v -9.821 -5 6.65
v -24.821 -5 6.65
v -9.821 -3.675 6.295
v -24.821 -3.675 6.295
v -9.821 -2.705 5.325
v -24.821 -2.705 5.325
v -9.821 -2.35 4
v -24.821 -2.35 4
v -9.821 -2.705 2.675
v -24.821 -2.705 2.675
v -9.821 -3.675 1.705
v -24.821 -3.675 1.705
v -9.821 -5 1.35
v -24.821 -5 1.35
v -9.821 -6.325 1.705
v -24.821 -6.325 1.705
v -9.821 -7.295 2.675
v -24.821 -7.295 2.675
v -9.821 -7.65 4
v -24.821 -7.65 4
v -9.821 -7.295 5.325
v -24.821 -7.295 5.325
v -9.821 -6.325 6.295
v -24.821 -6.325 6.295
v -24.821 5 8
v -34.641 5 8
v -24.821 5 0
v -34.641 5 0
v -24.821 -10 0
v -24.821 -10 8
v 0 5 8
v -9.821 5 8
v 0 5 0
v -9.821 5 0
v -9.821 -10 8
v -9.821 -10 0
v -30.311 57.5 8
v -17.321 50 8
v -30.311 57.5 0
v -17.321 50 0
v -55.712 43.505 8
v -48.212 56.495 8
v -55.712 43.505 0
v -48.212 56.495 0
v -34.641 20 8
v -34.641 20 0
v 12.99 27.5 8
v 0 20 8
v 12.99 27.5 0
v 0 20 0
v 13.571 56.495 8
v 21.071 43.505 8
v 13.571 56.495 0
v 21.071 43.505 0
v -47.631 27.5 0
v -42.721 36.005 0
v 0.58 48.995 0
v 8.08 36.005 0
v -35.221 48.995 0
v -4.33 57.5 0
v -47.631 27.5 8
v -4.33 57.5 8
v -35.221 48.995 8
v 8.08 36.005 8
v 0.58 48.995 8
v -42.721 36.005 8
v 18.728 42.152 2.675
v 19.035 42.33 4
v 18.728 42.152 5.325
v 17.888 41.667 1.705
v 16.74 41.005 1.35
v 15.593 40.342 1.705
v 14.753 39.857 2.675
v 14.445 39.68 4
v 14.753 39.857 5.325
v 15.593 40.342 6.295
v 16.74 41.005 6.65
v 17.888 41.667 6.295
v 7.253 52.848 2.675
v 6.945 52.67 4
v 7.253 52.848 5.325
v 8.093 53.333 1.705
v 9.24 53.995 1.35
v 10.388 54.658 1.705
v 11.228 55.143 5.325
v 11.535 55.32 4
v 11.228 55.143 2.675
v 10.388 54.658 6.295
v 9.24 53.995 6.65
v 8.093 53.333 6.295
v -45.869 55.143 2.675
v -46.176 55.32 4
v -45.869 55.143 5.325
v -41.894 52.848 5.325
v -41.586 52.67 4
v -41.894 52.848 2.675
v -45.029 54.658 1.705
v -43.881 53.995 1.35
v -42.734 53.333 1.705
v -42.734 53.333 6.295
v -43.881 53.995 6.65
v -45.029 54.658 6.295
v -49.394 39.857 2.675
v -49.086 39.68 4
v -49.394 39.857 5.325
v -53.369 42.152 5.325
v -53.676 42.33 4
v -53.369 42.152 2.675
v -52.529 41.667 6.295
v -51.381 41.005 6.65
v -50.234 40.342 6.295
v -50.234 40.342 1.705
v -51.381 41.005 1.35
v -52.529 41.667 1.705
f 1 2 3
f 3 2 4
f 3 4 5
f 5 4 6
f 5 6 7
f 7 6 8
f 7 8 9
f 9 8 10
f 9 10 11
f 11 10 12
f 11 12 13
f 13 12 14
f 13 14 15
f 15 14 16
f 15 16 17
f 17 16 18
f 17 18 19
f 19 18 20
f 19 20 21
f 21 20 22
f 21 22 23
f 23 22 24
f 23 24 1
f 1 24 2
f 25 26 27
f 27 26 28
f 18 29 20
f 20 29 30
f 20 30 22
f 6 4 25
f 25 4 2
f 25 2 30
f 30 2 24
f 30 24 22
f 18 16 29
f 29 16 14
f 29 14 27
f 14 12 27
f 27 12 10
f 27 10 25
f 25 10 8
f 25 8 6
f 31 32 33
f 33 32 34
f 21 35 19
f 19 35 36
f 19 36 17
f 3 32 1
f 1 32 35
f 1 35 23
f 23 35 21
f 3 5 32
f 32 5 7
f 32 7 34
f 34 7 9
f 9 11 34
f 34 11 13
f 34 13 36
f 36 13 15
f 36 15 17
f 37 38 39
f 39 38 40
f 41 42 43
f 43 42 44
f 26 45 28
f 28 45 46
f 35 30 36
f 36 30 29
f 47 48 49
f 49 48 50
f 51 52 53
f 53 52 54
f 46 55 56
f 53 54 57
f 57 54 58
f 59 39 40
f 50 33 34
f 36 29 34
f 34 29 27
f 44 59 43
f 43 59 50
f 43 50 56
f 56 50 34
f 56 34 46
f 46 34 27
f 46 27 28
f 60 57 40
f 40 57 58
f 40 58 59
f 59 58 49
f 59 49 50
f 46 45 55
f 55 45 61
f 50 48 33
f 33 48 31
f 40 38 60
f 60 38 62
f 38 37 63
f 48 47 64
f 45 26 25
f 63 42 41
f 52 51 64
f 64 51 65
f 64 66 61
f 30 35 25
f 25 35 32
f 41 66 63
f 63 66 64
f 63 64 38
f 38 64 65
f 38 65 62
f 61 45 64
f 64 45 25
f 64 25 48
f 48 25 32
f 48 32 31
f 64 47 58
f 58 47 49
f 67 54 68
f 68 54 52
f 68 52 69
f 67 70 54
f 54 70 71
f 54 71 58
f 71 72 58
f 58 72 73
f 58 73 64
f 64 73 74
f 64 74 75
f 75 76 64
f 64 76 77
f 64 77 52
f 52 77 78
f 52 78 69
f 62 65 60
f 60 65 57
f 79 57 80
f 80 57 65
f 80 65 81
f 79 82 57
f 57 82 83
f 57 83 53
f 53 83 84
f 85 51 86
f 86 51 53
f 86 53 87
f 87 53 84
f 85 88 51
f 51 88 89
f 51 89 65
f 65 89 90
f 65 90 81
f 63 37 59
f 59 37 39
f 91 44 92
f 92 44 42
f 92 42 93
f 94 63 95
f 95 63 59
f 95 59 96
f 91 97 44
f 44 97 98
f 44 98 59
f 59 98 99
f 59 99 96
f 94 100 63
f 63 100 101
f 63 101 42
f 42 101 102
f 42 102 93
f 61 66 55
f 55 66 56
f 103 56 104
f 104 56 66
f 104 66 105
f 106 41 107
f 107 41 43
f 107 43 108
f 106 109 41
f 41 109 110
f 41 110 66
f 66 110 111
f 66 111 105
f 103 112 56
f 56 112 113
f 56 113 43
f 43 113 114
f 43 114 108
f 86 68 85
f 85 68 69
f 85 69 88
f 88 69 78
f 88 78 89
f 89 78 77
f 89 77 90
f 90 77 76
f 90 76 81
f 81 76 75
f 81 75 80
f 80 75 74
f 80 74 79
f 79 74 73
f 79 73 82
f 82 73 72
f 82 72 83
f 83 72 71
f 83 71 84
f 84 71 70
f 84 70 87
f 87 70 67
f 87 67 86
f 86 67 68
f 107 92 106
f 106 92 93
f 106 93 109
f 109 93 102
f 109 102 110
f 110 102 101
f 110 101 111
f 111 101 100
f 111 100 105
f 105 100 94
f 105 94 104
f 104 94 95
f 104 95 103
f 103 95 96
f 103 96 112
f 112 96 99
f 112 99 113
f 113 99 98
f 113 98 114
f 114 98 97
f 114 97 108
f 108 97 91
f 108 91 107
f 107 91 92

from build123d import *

# Parameters (mm, degrees)
BOSS_EXTRUDE5_DEPTH = 8
CUT_EXTRUDE4_REACH  = 91.241
SKETCH6_R           = 2.65
CUT_EXTRUDE5_REACH  = 89.972
SKETCH7_R           = 2.65
CUT_EXTRUDE6_REACH  = 74.553
SKETCH8_R           = 2.65
CUT_EXTRUDE7_REACH  = 91.241
SKETCH10_W          = 9.820508075
SKETCH10_H          = 15
SKETCH10_W_2        = 9.820508076


with BuildPart() as part:
    # Sketch1 → Boss-Extrude5 (new body)
    with BuildSketch(Plane(origin=(0, 0, 0), x_dir=(0, 1, 0), z_dir=(0, 0, 1))):
        Polygon((35, 60.621778265), (30, 51.961524227), (50, 17.320508076), (65, 43.301270189), align=None)
        Polygon((60, 0), (0, 0), (30, 51.961524227), align=None)
        Polygon((60, 0), (20, 0), (35, -25.980762114), (65, -8.660254038), align=None)
        Polygon((-10, 0), (0, 0), (20, 34.641016151), (-10, 34.641016151), align=None)
    extrude(amount=BOSS_EXTRUDE5_DEPTH)

    # Sketch6 → Cut-Extrude4 (cut, up to next)
    with BuildSketch(Plane(origin=(-34.641016151, 0, 0), x_dir=(0, -1, 0), z_dir=(-1, 0, 0)), mode=Mode.PRIVATE) as cut_extrude4_sk1:
        with Locations(Location((5, 4, 0), (0, 0, 90))):
            Circle(SKETCH6_R)
    cut_extrude4_tool1 = extrude(cut_extrude4_sk1.sketch, amount=-CUT_EXTRUDE4_REACH, mode=Mode.PRIVATE) & part.part
    add(cut_extrude4_tool1.solids().sort_by_distance((-34.641016, -5, 4))[0], mode=Mode.SUBTRACT)

    # Sketch7 → Cut-Extrude5 (cut, up to next)
    with BuildSketch(Plane(origin=(17.320508076, 30, 0), x_dir=(-0.8660254037844388, 0.49999999999999967, 0), z_dir=(0.49999999999999967, 0.8660254037844388, 0)), mode=Mode.PRIVATE) as cut_extrude5_sk1:
        with Locations((65, 4)):
            Circle(SKETCH7_R)
    cut_extrude5_tool1 = extrude(cut_extrude5_sk1.sketch, amount=-CUT_EXTRUDE5_REACH, mode=Mode.PRIVATE) & part.part
    add(cut_extrude5_tool1.solids().sort_by_distance((-38.971143, 62.5, 4))[0], mode=Mode.SUBTRACT)

    # Sketch8 → Cut-Extrude6 (cut, up to next)
    with BuildSketch(Plane(origin=(-8.660254038, 15, 0), x_dir=(0.8660254037844385, 0.5000000000000003, 0), z_dir=(0.5000000000000003, -0.8660254037844385, 0)), mode=Mode.PRIVATE) as cut_extrude6_sk1:
        with Locations((35, 4)):
            Circle(SKETCH8_R)
    cut_extrude6_tool1 = extrude(cut_extrude6_sk1.sketch, amount=-CUT_EXTRUDE6_REACH, mode=Mode.PRIVATE) & part.part
    add(cut_extrude6_tool1.solids().sort_by_distance((21.650635, 32.5, 4))[0], mode=Mode.SUBTRACT)

    # Sketch10 → Cut-Extrude7 (cut, up to next)
    with BuildSketch(Plane.XY.offset(8), mode=Mode.PRIVATE) as cut_extrude7_sk1:
        with Locations((-29.730762114, -2.5)):
            Rectangle(SKETCH10_W, SKETCH10_H)
    cut_extrude7_tool1 = extrude(cut_extrude7_sk1.sketch, amount=-CUT_EXTRUDE7_REACH, mode=Mode.PRIVATE) & part.part
    # Sketch10 → Cut-Extrude7 (cut, up to next)
    with BuildSketch(Plane.XY.offset(8), mode=Mode.PRIVATE) as cut_extrude7_sk2:
        with Locations((-4.910254038, -2.5)):
            Rectangle(SKETCH10_W_2, SKETCH10_H)
    cut_extrude7_tool2 = extrude(cut_extrude7_sk2.sketch, amount=-CUT_EXTRUDE7_REACH, mode=Mode.PRIVATE) & part.part
    # Sketch10 → Cut-Extrude7 (cut, up to next)
    with BuildSketch(Plane.XY.offset(8), mode=Mode.PRIVATE) as cut_extrude7_sk3:
        Polygon((-60.621778265, 35), (-55.711524227, 43.504809472), (-42.72114317, 36.004809472), (-47.631397208, 27.5), align=None)
    cut_extrude7_tool3 = extrude(cut_extrude7_sk3.sketch, amount=-CUT_EXTRUDE7_REACH, mode=Mode.PRIVATE) & part.part
    # Sketch10 → Cut-Extrude7 (cut, up to next)
    with BuildSketch(Plane.XY.offset(8), mode=Mode.PRIVATE) as cut_extrude7_sk4:
        Polygon((-43.301270189, 65), (-30.310889132, 57.5), (-35.22114317, 48.995190528), (-48.211524227, 56.495190528), align=None)
    cut_extrude7_tool4 = extrude(cut_extrude7_sk4.sketch, amount=-CUT_EXTRUDE7_REACH, mode=Mode.PRIVATE) & part.part
    # Sketch10 → Cut-Extrude7 (cut, up to next)
    with BuildSketch(Plane.XY.offset(8), mode=Mode.PRIVATE) as cut_extrude7_sk5:
        Polygon((8.660254038, 65), (13.570508076, 56.495190528), (0.580127019, 48.995190528), (-4.330127019, 57.5), align=None)
    cut_extrude7_tool5 = extrude(cut_extrude7_sk5.sketch, amount=-CUT_EXTRUDE7_REACH, mode=Mode.PRIVATE) & part.part
    # Sketch10 → Cut-Extrude7 (cut, up to next)
    with BuildSketch(Plane.XY.offset(8), mode=Mode.PRIVATE) as cut_extrude7_sk6:
        Polygon((25.980762114, 35), (12.990381057, 27.5), (8.080127019, 36.004809472), (21.070508076, 43.504809472), align=None)
    cut_extrude7_tool6 = extrude(cut_extrude7_sk6.sketch, amount=-CUT_EXTRUDE7_REACH, mode=Mode.PRIVATE) & part.part
    add(cut_extrude7_tool1.solids().sort_by_distance((-29.730762, -2.5, 8))[0], mode=Mode.SUBTRACT)
    add(cut_extrude7_tool2.solids().sort_by_distance((-4.910254, -2.5, 8))[0], mode=Mode.SUBTRACT)
    add(cut_extrude7_tool3.solids().sort_by_distance((-51.671461, 35.502405, 8))[0], mode=Mode.SUBTRACT)
    add(cut_extrude7_tool4.solids().sort_by_distance((-39.261207, 56.997595, 8))[0], mode=Mode.SUBTRACT)
    add(cut_extrude7_tool5.solids().sort_by_distance((4.620191, 56.997595, 8))[0], mode=Mode.SUBTRACT)
    add(cut_extrude7_tool6.solids().sort_by_distance((17.030445, 35.502405, 8))[0], mode=Mode.SUBTRACT)


solid = part.part
